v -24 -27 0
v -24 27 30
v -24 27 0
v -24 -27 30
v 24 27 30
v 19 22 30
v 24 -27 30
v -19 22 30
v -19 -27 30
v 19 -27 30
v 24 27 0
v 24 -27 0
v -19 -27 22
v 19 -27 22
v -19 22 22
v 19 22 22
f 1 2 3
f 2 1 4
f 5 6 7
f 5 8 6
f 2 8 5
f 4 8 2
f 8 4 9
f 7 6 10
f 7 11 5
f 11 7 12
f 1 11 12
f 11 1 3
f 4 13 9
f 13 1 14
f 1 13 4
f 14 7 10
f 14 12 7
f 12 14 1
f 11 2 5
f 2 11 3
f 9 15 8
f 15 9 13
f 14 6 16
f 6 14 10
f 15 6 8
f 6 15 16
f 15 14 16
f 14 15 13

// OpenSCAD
// millimeters

leg_width = 38; // front
leg_depth = 44;
distance_to_floor = 22;
// MEASURE AGAIN

piece_heigh = 30;

padding = 5;

// TODO: measure again;

translate([0,0,piece_heigh/2]) {  
  difference(){
    cube([leg_width+padding*2, leg_depth+padding*2, piece_heigh], center=true);
    
    translate([0,-leg_depth/2,distance_to_floor])
      cube([leg_width, leg_depth*2, piece_heigh], center=true);
  }
}
